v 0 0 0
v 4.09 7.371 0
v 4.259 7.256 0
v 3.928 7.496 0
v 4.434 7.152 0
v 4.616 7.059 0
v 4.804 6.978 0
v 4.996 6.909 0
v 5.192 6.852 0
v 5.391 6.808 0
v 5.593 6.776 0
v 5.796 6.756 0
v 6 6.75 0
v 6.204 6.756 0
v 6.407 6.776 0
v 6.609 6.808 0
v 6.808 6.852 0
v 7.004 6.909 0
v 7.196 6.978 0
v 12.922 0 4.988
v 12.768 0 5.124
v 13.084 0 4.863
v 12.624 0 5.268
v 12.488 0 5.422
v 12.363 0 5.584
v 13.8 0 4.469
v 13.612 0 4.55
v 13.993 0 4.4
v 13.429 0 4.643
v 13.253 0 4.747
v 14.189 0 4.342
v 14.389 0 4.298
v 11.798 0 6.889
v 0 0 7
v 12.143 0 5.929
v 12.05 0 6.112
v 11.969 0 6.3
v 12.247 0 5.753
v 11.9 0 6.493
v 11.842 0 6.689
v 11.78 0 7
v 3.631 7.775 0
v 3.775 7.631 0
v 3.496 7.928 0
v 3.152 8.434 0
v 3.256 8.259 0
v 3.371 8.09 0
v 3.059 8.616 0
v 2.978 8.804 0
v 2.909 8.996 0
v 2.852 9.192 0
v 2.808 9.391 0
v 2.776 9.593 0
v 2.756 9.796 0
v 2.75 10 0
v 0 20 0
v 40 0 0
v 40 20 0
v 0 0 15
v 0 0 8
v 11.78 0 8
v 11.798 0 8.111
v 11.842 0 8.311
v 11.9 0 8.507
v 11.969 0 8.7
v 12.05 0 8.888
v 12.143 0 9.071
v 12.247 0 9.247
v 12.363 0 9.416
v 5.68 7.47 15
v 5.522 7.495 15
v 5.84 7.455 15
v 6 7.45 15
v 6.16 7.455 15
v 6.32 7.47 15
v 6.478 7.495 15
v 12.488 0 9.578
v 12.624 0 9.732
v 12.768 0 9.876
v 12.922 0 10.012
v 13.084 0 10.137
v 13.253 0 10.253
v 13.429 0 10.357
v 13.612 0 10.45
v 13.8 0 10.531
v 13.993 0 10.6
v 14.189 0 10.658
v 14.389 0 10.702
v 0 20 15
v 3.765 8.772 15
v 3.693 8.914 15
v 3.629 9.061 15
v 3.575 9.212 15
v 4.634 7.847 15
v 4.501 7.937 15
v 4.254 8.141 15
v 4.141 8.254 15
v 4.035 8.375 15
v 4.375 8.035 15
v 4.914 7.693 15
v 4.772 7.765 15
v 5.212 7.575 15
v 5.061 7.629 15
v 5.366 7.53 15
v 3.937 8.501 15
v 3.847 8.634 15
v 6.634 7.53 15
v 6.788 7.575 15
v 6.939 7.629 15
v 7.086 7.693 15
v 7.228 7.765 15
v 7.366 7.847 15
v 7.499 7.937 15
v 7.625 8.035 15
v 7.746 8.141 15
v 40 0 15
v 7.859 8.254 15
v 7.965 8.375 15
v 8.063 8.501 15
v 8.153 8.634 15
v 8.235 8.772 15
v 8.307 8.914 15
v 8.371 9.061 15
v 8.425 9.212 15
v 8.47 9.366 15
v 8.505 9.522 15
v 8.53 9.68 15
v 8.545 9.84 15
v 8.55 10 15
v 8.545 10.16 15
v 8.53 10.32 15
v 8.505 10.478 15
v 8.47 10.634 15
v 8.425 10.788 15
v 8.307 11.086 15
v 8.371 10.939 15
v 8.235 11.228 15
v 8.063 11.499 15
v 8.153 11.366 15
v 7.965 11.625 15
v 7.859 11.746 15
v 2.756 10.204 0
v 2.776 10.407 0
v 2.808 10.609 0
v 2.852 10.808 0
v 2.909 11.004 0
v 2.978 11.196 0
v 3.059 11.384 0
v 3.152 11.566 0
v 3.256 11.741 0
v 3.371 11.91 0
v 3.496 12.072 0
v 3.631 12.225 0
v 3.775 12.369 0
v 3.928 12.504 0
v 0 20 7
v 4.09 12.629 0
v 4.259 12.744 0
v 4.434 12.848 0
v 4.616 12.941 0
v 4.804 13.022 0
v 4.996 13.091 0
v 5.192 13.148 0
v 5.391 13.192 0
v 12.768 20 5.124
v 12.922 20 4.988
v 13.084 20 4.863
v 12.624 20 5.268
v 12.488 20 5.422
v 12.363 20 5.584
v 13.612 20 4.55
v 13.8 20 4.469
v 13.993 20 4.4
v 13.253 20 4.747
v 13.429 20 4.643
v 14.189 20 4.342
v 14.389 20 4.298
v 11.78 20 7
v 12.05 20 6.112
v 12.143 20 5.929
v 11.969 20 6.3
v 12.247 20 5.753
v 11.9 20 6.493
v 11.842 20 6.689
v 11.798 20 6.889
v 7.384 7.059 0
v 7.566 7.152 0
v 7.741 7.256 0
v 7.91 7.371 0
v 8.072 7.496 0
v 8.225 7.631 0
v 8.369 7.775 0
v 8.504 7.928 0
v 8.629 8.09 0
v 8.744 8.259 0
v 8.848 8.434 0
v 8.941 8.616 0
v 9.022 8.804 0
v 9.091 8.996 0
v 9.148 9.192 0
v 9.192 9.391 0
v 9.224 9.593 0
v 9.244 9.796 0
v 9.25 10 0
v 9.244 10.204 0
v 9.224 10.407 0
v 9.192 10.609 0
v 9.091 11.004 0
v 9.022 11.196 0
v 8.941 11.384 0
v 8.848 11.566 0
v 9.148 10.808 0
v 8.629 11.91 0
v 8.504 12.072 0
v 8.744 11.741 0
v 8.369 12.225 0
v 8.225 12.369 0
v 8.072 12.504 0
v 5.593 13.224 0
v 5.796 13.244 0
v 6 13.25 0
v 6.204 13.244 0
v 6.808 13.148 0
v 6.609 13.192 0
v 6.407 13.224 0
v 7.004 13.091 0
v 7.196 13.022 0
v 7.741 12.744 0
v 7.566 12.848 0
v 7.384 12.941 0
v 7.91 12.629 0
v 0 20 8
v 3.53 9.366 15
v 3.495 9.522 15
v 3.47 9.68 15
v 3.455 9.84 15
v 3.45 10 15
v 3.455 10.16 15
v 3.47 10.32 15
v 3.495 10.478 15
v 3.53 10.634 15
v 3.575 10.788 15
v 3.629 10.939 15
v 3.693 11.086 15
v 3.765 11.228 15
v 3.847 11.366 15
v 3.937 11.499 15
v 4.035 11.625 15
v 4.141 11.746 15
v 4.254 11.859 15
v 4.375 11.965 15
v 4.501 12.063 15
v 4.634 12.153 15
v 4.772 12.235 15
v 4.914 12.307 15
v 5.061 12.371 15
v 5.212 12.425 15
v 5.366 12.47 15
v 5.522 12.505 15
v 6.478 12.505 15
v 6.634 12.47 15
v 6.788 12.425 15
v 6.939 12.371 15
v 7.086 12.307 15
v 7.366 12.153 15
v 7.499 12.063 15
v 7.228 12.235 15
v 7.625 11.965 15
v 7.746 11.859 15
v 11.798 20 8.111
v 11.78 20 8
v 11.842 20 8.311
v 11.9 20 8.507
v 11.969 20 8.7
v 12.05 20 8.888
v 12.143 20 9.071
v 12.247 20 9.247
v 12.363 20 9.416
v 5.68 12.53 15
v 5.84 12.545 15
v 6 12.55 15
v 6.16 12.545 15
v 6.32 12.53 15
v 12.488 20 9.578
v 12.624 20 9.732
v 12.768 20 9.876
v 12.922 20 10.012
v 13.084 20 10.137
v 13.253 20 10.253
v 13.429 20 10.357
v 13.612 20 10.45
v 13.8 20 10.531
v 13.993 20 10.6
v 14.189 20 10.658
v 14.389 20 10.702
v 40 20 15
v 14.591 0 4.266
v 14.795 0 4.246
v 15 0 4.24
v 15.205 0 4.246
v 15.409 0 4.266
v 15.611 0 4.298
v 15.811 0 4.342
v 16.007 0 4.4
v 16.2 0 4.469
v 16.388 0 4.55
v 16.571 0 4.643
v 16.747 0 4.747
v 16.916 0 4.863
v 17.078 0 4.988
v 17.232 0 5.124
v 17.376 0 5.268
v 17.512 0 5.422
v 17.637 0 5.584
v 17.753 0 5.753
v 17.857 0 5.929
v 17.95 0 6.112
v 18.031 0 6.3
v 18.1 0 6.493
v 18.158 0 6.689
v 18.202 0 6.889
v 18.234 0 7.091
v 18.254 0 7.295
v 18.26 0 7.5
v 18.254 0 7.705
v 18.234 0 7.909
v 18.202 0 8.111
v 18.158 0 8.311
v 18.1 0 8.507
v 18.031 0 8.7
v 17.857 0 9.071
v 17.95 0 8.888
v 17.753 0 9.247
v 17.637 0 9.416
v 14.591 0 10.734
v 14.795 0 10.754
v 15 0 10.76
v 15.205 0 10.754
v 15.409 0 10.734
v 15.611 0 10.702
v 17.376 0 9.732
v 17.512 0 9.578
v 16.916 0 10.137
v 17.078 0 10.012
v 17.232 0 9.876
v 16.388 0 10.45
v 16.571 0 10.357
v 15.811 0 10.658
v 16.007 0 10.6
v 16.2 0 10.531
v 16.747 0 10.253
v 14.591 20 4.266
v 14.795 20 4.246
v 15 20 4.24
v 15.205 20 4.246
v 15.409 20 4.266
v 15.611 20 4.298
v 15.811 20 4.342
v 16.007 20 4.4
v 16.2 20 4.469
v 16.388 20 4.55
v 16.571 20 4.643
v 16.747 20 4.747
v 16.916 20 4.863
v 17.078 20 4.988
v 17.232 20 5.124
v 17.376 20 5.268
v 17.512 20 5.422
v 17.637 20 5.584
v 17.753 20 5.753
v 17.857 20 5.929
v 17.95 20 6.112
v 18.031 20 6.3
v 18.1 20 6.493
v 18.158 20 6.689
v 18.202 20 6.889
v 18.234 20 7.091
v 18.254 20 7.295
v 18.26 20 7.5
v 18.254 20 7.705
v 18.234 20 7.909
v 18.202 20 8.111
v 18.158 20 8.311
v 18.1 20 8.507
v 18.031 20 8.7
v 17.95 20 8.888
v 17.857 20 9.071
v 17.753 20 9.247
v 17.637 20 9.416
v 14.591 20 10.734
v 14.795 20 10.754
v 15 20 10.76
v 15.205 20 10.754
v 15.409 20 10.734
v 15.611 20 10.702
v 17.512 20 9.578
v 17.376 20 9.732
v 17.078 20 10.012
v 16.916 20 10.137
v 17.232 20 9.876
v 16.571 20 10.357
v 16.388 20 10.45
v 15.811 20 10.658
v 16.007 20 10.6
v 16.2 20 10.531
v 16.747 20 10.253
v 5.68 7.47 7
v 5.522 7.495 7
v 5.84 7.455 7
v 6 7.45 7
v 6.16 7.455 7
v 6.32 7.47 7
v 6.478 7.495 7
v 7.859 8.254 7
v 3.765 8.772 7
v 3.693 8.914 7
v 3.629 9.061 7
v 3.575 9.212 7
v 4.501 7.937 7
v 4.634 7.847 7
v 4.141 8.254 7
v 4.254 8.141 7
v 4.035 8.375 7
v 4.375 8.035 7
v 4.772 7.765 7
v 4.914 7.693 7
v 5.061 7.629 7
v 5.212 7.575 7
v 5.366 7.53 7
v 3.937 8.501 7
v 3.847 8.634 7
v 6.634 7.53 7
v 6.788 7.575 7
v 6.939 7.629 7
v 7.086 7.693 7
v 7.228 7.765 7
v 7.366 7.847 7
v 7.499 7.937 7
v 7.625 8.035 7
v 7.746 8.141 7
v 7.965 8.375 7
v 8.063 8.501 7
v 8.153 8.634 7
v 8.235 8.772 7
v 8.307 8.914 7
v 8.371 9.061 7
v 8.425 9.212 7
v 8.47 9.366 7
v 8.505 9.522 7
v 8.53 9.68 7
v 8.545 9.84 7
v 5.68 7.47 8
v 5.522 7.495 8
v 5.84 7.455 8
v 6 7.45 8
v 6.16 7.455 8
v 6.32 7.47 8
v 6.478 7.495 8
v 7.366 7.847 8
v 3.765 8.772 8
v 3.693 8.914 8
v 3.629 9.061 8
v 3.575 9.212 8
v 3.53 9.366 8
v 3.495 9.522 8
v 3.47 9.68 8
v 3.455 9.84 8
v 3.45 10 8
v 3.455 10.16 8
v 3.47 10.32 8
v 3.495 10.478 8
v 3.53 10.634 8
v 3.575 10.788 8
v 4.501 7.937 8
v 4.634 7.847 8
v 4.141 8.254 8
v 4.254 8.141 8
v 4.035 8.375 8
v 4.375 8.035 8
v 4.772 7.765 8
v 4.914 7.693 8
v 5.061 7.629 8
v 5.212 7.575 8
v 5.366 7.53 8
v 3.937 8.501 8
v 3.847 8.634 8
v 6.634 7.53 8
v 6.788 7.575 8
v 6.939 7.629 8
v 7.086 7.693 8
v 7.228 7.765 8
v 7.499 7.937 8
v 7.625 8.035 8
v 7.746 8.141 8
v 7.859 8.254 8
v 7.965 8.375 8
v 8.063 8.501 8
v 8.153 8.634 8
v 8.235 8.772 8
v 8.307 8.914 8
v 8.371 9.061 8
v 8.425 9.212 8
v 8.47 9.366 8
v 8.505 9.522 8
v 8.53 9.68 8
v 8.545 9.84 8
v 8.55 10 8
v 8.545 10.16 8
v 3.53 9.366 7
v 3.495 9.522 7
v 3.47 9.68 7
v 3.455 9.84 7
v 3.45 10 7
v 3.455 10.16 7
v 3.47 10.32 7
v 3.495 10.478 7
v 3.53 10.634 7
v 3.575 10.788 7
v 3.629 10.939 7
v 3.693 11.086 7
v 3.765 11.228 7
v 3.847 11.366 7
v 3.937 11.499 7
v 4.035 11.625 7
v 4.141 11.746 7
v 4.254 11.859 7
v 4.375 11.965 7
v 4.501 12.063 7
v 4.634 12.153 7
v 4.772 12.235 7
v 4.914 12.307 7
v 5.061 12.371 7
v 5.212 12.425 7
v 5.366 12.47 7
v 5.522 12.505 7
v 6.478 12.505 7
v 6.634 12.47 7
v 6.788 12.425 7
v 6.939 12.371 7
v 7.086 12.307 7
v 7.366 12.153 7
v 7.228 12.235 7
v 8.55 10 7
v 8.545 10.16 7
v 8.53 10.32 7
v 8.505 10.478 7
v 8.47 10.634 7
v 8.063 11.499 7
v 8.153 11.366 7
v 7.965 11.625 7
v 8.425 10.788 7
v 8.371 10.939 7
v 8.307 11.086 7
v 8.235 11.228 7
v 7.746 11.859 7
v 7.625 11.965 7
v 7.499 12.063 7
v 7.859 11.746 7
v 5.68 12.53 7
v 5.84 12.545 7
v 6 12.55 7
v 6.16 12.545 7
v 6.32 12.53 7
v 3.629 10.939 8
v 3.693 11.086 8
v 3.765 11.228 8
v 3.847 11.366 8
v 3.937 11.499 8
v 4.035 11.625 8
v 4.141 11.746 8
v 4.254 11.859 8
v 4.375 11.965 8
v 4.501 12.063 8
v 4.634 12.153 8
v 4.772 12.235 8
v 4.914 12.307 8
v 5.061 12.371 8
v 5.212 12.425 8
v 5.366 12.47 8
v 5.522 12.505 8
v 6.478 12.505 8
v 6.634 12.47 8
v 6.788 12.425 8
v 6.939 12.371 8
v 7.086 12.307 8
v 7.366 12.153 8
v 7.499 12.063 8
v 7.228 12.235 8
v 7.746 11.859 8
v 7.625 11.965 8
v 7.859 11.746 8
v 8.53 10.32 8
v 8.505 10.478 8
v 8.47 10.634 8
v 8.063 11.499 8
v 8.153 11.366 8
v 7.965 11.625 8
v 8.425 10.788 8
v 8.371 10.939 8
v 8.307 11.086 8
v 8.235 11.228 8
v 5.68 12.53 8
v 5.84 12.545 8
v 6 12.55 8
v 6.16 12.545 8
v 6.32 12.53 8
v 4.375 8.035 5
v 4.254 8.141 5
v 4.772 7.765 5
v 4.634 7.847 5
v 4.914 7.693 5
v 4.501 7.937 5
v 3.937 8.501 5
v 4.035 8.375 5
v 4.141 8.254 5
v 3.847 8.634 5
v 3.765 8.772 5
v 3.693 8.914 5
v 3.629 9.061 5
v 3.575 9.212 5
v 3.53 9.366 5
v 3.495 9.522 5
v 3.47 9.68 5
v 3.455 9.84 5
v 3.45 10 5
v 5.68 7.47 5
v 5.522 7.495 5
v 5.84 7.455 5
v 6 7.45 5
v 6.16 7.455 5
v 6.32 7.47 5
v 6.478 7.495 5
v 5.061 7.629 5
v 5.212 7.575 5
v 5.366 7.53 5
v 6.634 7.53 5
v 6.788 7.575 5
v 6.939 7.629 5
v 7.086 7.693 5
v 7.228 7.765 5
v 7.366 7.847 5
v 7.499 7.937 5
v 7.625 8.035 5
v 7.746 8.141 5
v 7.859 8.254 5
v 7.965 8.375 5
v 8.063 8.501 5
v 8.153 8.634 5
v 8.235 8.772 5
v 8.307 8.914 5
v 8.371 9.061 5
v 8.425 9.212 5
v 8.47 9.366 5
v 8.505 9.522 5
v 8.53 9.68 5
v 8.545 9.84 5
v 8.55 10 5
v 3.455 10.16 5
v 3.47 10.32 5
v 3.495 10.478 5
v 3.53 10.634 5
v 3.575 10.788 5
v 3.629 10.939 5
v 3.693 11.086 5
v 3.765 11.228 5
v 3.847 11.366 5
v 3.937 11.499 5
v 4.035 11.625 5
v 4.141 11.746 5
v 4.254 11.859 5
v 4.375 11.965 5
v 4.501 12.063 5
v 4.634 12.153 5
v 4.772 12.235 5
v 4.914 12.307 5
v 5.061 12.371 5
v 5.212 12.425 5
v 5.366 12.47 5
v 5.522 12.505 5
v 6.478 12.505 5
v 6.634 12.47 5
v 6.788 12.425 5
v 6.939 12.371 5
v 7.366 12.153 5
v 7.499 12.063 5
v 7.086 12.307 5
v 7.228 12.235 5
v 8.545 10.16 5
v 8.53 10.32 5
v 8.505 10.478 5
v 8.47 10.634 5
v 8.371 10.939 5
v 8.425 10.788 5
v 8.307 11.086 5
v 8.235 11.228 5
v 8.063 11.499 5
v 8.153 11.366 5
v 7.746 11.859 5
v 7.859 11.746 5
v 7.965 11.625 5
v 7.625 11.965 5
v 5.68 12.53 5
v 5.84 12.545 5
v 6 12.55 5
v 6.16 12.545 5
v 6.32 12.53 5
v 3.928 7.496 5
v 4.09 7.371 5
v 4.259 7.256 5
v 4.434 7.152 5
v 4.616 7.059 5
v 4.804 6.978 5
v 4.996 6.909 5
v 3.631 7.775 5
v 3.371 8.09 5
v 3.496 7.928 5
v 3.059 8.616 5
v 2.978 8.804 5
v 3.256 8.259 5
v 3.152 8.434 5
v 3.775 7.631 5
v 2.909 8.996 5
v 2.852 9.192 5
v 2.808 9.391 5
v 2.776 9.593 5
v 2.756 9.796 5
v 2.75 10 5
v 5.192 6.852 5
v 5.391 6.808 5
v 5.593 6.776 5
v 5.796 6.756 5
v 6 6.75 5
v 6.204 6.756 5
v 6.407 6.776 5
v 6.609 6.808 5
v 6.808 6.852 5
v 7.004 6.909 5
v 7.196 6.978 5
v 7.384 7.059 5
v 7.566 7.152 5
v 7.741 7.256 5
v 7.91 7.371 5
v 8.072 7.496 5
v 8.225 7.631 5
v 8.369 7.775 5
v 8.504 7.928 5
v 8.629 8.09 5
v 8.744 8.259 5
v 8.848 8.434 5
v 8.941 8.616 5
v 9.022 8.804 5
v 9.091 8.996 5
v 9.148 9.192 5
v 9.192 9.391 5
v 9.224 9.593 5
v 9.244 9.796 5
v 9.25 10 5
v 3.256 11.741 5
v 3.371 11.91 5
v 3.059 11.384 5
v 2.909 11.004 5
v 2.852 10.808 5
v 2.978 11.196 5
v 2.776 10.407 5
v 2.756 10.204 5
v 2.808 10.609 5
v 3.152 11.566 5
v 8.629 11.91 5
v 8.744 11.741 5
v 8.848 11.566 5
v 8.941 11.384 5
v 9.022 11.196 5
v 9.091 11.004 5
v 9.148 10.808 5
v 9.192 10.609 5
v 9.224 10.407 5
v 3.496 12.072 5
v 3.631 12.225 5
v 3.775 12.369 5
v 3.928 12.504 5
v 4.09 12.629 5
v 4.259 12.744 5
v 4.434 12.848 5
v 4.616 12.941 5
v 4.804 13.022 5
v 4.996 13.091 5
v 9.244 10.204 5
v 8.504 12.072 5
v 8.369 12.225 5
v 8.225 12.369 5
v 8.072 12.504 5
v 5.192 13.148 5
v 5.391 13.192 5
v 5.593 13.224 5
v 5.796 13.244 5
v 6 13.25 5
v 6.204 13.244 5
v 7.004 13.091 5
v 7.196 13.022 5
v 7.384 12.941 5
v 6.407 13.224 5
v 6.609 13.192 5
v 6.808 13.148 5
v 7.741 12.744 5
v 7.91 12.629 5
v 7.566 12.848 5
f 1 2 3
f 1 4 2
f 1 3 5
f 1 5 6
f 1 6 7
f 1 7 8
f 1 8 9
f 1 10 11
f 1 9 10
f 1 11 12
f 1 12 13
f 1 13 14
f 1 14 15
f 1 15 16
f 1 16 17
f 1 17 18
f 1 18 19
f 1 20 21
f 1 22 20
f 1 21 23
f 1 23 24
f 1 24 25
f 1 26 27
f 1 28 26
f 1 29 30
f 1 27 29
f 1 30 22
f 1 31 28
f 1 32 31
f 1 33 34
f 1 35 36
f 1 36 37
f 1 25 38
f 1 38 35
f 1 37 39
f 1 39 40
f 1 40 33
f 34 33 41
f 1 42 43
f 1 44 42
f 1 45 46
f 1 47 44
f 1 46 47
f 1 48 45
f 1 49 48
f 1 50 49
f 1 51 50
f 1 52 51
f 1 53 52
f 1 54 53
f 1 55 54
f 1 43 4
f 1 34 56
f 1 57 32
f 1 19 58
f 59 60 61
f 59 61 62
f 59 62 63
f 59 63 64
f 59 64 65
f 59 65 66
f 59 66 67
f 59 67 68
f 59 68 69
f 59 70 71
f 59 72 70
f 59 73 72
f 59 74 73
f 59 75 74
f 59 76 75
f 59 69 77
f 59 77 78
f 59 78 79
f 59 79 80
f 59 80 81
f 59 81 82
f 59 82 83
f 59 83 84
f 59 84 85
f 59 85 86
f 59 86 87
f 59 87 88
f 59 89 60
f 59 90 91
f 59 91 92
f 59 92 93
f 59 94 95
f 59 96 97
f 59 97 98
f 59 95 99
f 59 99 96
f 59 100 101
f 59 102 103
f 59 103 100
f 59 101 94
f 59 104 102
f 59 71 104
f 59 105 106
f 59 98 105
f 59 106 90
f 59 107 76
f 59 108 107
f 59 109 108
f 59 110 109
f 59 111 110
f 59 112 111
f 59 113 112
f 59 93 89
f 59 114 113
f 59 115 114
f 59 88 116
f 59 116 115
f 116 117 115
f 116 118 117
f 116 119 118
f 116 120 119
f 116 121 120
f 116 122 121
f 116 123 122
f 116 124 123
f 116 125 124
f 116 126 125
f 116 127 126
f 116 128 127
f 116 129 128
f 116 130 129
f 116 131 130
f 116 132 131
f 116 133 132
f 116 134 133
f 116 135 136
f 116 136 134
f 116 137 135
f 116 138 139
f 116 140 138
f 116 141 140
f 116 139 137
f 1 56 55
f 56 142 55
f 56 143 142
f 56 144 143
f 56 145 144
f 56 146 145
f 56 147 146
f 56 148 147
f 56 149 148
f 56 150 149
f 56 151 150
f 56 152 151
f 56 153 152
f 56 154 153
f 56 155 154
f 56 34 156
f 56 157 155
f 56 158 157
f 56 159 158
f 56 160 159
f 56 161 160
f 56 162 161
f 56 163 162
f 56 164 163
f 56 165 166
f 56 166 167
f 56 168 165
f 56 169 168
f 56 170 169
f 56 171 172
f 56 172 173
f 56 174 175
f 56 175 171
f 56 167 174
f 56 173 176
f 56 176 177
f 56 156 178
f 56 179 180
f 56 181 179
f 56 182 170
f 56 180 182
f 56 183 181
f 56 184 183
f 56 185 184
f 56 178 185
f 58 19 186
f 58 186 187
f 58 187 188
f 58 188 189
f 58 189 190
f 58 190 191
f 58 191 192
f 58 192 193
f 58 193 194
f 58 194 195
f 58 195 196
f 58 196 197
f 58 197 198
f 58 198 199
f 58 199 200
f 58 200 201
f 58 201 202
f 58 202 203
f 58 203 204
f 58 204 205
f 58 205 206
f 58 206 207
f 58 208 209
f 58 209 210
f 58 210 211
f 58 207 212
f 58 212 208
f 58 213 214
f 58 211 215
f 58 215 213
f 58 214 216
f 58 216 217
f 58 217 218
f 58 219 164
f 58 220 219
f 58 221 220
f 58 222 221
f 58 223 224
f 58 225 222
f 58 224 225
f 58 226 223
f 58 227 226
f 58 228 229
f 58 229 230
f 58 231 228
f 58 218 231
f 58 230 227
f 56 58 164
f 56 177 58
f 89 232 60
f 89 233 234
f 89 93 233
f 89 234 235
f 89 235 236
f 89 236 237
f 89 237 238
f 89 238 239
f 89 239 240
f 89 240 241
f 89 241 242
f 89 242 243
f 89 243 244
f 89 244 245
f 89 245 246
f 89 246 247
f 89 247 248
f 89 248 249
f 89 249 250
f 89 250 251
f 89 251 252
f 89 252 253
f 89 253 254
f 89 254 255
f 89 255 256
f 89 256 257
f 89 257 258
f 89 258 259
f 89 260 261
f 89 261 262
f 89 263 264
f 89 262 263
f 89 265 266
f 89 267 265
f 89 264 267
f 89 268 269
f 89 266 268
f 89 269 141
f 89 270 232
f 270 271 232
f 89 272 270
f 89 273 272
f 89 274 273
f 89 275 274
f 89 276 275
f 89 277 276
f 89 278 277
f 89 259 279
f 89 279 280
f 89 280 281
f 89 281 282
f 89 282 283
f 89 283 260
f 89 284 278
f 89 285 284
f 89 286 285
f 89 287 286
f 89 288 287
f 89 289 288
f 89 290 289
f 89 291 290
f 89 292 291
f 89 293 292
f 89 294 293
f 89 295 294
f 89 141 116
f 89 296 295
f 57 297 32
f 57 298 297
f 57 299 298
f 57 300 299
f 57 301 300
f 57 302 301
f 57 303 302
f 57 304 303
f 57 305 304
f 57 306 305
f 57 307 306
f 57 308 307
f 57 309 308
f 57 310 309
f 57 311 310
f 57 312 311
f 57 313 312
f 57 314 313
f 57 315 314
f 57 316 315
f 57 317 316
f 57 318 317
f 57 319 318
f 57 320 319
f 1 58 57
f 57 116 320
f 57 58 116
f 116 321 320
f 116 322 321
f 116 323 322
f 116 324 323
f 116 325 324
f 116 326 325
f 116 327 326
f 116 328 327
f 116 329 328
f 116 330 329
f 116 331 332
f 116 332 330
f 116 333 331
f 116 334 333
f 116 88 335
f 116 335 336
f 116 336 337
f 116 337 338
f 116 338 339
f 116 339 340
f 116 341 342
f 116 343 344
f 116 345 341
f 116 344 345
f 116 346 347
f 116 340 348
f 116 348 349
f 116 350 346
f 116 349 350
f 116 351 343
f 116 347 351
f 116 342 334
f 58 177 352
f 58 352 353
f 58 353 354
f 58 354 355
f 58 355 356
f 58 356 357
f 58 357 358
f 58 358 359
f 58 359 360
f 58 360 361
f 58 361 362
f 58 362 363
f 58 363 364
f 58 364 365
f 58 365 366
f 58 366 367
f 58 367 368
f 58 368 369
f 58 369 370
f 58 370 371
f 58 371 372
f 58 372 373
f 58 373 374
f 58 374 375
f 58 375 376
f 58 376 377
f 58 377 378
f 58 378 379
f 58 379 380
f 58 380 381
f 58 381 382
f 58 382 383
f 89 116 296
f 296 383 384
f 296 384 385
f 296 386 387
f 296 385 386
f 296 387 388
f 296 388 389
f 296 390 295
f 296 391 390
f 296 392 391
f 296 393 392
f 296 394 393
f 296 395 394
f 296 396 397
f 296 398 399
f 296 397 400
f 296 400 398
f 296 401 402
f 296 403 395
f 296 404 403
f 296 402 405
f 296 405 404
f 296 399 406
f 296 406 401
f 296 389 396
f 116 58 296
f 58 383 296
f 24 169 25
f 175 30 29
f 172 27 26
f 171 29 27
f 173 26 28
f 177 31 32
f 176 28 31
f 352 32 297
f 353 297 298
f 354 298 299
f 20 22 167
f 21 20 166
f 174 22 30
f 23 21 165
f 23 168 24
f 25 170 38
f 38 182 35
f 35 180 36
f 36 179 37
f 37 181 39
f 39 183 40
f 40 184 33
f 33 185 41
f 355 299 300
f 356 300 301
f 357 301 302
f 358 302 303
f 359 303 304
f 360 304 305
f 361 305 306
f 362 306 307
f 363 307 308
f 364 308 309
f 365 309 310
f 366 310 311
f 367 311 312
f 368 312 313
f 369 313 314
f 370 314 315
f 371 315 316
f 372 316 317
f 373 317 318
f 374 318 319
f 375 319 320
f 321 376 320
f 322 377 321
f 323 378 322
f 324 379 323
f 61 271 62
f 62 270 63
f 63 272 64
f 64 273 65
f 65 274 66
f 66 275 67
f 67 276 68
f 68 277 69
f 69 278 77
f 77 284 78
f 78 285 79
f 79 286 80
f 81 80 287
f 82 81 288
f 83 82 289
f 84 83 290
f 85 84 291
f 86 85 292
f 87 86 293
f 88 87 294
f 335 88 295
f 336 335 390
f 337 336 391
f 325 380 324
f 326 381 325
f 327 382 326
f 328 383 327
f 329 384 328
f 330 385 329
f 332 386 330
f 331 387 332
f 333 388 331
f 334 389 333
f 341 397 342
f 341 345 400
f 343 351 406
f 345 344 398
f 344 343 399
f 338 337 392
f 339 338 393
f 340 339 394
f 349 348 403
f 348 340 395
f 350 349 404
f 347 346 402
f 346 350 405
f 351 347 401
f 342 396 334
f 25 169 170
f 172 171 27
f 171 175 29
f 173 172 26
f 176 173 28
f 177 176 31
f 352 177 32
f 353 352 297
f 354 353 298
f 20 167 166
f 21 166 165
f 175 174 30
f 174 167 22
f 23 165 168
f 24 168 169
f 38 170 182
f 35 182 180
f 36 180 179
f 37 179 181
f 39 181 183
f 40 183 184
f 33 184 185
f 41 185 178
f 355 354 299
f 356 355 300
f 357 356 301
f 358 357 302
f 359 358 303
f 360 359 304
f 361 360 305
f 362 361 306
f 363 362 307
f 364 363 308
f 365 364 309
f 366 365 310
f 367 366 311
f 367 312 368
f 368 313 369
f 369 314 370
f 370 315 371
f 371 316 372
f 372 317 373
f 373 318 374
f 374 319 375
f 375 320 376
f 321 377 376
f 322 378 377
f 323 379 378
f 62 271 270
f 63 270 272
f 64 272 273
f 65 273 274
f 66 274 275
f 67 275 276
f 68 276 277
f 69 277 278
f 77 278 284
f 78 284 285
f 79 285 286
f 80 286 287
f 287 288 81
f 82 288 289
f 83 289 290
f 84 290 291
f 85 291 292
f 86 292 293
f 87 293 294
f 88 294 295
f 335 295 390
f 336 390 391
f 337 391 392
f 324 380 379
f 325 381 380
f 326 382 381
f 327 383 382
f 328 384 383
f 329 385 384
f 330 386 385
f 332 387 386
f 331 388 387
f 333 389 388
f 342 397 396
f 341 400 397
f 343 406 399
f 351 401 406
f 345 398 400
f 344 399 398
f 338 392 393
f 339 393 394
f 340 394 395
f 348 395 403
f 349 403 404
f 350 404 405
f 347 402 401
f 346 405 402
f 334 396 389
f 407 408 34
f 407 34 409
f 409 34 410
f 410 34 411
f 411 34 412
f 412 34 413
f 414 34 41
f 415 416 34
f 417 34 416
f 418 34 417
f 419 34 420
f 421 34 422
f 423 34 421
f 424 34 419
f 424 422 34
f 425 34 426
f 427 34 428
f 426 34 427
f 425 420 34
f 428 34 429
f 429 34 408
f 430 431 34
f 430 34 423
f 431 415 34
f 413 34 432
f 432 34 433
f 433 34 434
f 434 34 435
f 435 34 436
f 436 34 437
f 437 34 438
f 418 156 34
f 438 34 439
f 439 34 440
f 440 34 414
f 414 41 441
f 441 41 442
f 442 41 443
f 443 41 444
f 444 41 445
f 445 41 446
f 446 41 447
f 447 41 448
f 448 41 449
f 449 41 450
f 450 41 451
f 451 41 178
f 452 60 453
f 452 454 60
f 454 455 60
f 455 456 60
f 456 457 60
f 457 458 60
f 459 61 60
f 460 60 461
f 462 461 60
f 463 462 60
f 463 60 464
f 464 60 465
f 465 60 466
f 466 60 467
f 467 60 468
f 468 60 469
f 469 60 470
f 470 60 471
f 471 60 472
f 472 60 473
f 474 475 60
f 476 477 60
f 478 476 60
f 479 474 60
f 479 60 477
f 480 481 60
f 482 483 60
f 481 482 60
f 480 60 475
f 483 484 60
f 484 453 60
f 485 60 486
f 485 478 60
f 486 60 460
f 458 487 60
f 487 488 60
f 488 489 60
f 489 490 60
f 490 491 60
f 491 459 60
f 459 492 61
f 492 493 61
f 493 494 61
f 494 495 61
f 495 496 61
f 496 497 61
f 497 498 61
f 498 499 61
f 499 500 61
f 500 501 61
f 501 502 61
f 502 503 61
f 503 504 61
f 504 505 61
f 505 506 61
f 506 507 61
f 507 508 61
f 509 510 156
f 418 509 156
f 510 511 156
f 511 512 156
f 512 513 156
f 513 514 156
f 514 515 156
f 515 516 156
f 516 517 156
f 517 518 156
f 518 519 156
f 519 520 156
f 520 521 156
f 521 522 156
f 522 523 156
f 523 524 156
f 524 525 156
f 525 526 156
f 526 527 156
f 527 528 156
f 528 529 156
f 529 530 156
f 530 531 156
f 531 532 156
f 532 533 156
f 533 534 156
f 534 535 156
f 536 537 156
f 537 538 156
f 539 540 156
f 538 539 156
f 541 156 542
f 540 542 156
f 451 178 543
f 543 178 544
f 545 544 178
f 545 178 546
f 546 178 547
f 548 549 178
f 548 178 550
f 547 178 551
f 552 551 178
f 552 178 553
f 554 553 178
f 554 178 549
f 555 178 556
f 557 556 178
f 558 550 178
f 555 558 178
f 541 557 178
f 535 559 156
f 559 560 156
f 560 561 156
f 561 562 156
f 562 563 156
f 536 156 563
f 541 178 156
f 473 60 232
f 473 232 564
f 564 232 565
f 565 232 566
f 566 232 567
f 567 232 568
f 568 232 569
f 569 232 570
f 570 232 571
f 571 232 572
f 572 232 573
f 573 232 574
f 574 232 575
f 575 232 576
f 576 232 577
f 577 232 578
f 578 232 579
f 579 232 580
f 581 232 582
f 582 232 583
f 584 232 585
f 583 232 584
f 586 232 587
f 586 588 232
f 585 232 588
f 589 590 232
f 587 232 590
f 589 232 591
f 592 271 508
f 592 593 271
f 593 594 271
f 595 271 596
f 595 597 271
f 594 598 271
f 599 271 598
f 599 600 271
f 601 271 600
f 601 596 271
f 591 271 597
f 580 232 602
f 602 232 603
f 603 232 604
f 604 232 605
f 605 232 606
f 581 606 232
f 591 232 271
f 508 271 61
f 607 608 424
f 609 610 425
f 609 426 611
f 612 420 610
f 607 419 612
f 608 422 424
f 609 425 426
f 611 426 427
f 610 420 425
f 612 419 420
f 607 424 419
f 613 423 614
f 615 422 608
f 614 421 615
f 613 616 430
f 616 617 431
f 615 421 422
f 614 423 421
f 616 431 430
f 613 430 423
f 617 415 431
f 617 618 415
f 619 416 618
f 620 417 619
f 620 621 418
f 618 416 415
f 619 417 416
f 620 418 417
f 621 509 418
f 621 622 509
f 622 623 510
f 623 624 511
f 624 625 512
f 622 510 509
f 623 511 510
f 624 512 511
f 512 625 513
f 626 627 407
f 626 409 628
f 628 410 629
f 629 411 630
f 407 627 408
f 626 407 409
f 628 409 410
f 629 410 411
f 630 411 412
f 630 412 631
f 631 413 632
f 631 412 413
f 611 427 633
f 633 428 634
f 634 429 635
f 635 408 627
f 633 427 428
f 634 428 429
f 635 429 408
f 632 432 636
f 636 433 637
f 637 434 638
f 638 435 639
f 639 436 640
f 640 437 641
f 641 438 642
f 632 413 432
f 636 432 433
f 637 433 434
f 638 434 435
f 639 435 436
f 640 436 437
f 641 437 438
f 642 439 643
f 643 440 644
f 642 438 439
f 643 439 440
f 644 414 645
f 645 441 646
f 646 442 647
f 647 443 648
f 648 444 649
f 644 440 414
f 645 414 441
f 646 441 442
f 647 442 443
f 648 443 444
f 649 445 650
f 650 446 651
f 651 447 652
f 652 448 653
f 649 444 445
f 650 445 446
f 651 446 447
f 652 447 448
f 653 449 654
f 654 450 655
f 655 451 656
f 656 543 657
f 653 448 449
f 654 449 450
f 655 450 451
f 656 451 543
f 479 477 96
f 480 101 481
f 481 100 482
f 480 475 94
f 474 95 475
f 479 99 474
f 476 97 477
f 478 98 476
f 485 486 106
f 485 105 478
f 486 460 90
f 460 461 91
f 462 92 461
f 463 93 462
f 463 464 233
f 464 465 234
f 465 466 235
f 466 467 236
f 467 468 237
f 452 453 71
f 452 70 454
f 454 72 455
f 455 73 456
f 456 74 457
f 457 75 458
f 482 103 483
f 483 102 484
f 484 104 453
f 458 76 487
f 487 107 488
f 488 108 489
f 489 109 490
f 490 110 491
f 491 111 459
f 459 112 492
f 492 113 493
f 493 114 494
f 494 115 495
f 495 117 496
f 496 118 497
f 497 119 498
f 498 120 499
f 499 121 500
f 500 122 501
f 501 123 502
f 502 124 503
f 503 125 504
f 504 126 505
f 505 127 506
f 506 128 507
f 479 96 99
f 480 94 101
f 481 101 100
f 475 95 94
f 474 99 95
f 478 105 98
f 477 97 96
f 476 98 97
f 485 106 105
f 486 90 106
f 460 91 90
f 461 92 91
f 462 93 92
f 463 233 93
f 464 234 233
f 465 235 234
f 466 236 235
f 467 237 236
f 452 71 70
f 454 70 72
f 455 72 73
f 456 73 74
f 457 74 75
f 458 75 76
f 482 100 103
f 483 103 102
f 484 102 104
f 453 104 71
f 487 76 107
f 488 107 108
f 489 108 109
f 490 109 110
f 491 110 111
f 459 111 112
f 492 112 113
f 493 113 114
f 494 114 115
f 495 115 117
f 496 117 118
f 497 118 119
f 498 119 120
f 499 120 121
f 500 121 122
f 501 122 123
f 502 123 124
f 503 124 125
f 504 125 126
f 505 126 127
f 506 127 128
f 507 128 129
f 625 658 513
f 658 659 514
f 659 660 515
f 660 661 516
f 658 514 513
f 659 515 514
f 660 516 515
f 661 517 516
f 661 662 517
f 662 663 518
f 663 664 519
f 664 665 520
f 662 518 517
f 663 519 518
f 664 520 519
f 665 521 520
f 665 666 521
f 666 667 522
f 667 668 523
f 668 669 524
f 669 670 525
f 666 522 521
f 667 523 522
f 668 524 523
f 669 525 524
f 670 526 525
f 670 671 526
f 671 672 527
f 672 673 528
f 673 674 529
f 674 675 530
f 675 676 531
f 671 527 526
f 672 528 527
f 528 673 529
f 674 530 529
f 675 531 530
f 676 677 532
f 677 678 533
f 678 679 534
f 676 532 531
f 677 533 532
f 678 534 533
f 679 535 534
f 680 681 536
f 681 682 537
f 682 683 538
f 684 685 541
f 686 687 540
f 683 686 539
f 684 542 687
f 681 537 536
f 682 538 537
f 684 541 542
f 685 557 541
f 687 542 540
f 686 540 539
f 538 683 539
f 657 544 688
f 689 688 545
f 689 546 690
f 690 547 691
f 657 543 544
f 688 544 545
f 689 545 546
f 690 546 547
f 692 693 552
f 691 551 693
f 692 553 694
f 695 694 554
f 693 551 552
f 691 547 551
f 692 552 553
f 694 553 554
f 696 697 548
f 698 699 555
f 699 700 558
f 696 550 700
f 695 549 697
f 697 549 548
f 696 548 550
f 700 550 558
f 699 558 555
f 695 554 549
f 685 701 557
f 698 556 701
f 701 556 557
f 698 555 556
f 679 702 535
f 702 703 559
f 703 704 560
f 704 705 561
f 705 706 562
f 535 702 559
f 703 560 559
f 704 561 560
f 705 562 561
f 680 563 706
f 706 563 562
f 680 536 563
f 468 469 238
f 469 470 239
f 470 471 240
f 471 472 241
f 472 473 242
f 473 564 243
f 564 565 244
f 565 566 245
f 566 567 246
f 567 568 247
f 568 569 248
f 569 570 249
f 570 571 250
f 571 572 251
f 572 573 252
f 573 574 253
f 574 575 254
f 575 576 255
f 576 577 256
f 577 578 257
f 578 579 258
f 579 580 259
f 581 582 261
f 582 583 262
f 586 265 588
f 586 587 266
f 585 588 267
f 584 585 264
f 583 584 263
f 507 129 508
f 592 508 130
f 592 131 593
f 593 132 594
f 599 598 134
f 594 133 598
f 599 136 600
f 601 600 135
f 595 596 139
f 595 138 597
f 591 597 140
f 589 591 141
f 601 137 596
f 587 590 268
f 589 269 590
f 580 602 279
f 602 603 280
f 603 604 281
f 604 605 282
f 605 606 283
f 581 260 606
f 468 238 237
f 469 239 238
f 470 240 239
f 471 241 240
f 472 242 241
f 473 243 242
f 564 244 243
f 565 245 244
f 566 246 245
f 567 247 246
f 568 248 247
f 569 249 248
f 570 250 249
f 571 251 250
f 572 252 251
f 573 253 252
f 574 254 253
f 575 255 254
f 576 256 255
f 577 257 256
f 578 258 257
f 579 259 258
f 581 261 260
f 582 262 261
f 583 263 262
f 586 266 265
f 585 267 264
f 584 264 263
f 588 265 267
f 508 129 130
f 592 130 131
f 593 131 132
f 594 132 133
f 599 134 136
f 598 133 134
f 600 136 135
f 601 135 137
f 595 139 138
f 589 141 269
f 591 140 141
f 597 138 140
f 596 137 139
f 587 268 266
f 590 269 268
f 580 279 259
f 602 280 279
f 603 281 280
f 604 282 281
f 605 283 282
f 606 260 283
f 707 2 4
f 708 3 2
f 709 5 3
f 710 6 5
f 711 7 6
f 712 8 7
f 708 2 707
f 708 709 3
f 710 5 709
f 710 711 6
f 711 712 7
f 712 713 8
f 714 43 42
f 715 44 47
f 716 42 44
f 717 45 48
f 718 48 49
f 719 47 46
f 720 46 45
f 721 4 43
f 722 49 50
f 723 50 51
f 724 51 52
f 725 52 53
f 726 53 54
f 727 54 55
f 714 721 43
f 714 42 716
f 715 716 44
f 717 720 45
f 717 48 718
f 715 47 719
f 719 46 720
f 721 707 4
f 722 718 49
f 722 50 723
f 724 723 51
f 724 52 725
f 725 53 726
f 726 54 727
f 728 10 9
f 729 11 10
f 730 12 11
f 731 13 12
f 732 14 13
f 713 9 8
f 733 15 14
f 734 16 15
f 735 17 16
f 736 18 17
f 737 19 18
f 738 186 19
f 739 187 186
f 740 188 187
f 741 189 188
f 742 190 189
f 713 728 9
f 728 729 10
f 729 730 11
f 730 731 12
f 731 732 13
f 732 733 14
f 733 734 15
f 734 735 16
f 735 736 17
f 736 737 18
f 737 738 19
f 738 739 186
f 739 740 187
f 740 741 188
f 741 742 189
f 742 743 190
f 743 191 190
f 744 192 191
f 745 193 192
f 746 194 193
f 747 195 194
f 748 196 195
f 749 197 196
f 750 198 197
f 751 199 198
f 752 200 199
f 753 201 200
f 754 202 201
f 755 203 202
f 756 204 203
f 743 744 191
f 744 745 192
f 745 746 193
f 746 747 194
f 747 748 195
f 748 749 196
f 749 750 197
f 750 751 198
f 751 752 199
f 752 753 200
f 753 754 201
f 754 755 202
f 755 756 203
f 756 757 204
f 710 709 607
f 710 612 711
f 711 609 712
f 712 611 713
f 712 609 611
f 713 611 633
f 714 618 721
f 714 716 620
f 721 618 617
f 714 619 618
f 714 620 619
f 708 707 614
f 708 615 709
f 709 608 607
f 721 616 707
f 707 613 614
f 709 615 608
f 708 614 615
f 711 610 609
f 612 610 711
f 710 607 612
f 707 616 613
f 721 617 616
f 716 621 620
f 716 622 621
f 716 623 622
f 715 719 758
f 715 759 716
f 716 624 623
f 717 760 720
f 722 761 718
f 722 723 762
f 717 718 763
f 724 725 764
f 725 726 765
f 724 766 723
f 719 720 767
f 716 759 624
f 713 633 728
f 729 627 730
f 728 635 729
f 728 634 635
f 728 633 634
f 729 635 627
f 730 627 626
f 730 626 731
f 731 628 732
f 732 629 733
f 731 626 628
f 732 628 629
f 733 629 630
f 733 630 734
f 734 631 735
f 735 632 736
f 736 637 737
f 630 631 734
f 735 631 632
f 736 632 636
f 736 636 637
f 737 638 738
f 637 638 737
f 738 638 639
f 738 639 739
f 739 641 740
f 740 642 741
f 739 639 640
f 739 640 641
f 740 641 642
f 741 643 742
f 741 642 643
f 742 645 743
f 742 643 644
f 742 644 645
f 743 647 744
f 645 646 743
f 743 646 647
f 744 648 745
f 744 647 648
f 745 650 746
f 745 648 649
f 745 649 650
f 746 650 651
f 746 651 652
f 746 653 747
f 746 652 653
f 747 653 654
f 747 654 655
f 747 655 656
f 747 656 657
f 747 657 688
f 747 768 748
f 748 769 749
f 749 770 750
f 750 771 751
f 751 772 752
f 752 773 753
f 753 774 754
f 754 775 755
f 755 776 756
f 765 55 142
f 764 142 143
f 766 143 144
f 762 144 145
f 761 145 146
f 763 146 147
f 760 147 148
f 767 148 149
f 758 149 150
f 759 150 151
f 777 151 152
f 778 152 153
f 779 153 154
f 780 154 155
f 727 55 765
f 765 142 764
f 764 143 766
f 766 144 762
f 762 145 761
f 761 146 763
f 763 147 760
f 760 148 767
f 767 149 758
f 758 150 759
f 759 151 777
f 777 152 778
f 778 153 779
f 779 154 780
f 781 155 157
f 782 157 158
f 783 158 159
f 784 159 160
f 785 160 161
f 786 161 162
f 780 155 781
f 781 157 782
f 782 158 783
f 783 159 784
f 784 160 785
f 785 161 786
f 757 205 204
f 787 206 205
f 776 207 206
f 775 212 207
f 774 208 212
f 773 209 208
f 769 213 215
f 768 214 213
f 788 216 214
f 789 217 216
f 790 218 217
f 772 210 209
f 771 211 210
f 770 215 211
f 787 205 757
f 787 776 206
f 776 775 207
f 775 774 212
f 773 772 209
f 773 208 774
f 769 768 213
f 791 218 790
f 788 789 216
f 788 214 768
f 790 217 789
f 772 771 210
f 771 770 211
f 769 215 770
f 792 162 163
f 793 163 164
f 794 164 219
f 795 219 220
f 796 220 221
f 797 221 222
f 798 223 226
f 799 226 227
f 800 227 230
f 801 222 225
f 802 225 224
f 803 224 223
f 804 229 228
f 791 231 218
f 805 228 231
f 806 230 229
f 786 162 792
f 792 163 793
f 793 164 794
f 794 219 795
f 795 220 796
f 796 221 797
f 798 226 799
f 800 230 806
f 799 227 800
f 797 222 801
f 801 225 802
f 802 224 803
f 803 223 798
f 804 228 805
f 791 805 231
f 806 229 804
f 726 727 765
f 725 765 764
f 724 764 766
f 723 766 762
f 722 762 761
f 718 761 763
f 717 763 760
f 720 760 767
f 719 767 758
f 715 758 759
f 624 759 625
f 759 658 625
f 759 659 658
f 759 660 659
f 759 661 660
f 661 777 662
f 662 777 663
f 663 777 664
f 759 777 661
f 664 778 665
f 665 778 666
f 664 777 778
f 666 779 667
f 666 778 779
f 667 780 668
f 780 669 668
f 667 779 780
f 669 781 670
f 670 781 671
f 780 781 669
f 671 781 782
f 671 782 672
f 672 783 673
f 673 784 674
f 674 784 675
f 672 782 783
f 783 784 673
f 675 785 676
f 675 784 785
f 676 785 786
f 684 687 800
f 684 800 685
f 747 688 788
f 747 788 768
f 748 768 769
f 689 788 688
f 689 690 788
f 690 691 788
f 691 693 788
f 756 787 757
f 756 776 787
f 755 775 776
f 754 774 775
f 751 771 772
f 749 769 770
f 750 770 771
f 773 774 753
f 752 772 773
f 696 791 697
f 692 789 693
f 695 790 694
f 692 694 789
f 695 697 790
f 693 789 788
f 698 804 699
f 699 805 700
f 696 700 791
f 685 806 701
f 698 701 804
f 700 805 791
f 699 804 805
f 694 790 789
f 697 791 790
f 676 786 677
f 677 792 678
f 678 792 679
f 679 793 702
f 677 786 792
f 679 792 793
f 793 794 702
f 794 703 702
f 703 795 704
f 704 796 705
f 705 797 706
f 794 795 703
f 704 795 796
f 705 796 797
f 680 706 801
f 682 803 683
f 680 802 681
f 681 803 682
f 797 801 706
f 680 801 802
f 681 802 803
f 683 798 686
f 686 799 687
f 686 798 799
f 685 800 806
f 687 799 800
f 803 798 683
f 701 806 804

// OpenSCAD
// Rod clamp. This doesn't do anything by itself, so you
// would glue something else to it. Like another rod clamp.
// This is set up for a 6.5mm rod, an M5 bolt, and a push
// fit threaded insert.
// Rotate it 90 degrees on the X axis to print with no supports.
$fn = 100;

rodD = 6.52;

difference() {
    cube([40, 20, 15]);
    
    // Rod
    rotate([90, 0, 0])
    translate([15, 7.5, -20.05])
    cylinder(h = 20.1, d = rodD);
    
    // Cut
    translate([-0.05, -0.05, 7.5-0.5])
    cube([16.1, 20.1, 1]);
    
    // M5
    translate([6, 10, -0.05])
    cylinder(h = 15.1, d  = 5.1);
    
    // M5 threaded insert
    translate([6, 10, -0.05])
    cylinder(h = 5.05, d = 6.5);
}
